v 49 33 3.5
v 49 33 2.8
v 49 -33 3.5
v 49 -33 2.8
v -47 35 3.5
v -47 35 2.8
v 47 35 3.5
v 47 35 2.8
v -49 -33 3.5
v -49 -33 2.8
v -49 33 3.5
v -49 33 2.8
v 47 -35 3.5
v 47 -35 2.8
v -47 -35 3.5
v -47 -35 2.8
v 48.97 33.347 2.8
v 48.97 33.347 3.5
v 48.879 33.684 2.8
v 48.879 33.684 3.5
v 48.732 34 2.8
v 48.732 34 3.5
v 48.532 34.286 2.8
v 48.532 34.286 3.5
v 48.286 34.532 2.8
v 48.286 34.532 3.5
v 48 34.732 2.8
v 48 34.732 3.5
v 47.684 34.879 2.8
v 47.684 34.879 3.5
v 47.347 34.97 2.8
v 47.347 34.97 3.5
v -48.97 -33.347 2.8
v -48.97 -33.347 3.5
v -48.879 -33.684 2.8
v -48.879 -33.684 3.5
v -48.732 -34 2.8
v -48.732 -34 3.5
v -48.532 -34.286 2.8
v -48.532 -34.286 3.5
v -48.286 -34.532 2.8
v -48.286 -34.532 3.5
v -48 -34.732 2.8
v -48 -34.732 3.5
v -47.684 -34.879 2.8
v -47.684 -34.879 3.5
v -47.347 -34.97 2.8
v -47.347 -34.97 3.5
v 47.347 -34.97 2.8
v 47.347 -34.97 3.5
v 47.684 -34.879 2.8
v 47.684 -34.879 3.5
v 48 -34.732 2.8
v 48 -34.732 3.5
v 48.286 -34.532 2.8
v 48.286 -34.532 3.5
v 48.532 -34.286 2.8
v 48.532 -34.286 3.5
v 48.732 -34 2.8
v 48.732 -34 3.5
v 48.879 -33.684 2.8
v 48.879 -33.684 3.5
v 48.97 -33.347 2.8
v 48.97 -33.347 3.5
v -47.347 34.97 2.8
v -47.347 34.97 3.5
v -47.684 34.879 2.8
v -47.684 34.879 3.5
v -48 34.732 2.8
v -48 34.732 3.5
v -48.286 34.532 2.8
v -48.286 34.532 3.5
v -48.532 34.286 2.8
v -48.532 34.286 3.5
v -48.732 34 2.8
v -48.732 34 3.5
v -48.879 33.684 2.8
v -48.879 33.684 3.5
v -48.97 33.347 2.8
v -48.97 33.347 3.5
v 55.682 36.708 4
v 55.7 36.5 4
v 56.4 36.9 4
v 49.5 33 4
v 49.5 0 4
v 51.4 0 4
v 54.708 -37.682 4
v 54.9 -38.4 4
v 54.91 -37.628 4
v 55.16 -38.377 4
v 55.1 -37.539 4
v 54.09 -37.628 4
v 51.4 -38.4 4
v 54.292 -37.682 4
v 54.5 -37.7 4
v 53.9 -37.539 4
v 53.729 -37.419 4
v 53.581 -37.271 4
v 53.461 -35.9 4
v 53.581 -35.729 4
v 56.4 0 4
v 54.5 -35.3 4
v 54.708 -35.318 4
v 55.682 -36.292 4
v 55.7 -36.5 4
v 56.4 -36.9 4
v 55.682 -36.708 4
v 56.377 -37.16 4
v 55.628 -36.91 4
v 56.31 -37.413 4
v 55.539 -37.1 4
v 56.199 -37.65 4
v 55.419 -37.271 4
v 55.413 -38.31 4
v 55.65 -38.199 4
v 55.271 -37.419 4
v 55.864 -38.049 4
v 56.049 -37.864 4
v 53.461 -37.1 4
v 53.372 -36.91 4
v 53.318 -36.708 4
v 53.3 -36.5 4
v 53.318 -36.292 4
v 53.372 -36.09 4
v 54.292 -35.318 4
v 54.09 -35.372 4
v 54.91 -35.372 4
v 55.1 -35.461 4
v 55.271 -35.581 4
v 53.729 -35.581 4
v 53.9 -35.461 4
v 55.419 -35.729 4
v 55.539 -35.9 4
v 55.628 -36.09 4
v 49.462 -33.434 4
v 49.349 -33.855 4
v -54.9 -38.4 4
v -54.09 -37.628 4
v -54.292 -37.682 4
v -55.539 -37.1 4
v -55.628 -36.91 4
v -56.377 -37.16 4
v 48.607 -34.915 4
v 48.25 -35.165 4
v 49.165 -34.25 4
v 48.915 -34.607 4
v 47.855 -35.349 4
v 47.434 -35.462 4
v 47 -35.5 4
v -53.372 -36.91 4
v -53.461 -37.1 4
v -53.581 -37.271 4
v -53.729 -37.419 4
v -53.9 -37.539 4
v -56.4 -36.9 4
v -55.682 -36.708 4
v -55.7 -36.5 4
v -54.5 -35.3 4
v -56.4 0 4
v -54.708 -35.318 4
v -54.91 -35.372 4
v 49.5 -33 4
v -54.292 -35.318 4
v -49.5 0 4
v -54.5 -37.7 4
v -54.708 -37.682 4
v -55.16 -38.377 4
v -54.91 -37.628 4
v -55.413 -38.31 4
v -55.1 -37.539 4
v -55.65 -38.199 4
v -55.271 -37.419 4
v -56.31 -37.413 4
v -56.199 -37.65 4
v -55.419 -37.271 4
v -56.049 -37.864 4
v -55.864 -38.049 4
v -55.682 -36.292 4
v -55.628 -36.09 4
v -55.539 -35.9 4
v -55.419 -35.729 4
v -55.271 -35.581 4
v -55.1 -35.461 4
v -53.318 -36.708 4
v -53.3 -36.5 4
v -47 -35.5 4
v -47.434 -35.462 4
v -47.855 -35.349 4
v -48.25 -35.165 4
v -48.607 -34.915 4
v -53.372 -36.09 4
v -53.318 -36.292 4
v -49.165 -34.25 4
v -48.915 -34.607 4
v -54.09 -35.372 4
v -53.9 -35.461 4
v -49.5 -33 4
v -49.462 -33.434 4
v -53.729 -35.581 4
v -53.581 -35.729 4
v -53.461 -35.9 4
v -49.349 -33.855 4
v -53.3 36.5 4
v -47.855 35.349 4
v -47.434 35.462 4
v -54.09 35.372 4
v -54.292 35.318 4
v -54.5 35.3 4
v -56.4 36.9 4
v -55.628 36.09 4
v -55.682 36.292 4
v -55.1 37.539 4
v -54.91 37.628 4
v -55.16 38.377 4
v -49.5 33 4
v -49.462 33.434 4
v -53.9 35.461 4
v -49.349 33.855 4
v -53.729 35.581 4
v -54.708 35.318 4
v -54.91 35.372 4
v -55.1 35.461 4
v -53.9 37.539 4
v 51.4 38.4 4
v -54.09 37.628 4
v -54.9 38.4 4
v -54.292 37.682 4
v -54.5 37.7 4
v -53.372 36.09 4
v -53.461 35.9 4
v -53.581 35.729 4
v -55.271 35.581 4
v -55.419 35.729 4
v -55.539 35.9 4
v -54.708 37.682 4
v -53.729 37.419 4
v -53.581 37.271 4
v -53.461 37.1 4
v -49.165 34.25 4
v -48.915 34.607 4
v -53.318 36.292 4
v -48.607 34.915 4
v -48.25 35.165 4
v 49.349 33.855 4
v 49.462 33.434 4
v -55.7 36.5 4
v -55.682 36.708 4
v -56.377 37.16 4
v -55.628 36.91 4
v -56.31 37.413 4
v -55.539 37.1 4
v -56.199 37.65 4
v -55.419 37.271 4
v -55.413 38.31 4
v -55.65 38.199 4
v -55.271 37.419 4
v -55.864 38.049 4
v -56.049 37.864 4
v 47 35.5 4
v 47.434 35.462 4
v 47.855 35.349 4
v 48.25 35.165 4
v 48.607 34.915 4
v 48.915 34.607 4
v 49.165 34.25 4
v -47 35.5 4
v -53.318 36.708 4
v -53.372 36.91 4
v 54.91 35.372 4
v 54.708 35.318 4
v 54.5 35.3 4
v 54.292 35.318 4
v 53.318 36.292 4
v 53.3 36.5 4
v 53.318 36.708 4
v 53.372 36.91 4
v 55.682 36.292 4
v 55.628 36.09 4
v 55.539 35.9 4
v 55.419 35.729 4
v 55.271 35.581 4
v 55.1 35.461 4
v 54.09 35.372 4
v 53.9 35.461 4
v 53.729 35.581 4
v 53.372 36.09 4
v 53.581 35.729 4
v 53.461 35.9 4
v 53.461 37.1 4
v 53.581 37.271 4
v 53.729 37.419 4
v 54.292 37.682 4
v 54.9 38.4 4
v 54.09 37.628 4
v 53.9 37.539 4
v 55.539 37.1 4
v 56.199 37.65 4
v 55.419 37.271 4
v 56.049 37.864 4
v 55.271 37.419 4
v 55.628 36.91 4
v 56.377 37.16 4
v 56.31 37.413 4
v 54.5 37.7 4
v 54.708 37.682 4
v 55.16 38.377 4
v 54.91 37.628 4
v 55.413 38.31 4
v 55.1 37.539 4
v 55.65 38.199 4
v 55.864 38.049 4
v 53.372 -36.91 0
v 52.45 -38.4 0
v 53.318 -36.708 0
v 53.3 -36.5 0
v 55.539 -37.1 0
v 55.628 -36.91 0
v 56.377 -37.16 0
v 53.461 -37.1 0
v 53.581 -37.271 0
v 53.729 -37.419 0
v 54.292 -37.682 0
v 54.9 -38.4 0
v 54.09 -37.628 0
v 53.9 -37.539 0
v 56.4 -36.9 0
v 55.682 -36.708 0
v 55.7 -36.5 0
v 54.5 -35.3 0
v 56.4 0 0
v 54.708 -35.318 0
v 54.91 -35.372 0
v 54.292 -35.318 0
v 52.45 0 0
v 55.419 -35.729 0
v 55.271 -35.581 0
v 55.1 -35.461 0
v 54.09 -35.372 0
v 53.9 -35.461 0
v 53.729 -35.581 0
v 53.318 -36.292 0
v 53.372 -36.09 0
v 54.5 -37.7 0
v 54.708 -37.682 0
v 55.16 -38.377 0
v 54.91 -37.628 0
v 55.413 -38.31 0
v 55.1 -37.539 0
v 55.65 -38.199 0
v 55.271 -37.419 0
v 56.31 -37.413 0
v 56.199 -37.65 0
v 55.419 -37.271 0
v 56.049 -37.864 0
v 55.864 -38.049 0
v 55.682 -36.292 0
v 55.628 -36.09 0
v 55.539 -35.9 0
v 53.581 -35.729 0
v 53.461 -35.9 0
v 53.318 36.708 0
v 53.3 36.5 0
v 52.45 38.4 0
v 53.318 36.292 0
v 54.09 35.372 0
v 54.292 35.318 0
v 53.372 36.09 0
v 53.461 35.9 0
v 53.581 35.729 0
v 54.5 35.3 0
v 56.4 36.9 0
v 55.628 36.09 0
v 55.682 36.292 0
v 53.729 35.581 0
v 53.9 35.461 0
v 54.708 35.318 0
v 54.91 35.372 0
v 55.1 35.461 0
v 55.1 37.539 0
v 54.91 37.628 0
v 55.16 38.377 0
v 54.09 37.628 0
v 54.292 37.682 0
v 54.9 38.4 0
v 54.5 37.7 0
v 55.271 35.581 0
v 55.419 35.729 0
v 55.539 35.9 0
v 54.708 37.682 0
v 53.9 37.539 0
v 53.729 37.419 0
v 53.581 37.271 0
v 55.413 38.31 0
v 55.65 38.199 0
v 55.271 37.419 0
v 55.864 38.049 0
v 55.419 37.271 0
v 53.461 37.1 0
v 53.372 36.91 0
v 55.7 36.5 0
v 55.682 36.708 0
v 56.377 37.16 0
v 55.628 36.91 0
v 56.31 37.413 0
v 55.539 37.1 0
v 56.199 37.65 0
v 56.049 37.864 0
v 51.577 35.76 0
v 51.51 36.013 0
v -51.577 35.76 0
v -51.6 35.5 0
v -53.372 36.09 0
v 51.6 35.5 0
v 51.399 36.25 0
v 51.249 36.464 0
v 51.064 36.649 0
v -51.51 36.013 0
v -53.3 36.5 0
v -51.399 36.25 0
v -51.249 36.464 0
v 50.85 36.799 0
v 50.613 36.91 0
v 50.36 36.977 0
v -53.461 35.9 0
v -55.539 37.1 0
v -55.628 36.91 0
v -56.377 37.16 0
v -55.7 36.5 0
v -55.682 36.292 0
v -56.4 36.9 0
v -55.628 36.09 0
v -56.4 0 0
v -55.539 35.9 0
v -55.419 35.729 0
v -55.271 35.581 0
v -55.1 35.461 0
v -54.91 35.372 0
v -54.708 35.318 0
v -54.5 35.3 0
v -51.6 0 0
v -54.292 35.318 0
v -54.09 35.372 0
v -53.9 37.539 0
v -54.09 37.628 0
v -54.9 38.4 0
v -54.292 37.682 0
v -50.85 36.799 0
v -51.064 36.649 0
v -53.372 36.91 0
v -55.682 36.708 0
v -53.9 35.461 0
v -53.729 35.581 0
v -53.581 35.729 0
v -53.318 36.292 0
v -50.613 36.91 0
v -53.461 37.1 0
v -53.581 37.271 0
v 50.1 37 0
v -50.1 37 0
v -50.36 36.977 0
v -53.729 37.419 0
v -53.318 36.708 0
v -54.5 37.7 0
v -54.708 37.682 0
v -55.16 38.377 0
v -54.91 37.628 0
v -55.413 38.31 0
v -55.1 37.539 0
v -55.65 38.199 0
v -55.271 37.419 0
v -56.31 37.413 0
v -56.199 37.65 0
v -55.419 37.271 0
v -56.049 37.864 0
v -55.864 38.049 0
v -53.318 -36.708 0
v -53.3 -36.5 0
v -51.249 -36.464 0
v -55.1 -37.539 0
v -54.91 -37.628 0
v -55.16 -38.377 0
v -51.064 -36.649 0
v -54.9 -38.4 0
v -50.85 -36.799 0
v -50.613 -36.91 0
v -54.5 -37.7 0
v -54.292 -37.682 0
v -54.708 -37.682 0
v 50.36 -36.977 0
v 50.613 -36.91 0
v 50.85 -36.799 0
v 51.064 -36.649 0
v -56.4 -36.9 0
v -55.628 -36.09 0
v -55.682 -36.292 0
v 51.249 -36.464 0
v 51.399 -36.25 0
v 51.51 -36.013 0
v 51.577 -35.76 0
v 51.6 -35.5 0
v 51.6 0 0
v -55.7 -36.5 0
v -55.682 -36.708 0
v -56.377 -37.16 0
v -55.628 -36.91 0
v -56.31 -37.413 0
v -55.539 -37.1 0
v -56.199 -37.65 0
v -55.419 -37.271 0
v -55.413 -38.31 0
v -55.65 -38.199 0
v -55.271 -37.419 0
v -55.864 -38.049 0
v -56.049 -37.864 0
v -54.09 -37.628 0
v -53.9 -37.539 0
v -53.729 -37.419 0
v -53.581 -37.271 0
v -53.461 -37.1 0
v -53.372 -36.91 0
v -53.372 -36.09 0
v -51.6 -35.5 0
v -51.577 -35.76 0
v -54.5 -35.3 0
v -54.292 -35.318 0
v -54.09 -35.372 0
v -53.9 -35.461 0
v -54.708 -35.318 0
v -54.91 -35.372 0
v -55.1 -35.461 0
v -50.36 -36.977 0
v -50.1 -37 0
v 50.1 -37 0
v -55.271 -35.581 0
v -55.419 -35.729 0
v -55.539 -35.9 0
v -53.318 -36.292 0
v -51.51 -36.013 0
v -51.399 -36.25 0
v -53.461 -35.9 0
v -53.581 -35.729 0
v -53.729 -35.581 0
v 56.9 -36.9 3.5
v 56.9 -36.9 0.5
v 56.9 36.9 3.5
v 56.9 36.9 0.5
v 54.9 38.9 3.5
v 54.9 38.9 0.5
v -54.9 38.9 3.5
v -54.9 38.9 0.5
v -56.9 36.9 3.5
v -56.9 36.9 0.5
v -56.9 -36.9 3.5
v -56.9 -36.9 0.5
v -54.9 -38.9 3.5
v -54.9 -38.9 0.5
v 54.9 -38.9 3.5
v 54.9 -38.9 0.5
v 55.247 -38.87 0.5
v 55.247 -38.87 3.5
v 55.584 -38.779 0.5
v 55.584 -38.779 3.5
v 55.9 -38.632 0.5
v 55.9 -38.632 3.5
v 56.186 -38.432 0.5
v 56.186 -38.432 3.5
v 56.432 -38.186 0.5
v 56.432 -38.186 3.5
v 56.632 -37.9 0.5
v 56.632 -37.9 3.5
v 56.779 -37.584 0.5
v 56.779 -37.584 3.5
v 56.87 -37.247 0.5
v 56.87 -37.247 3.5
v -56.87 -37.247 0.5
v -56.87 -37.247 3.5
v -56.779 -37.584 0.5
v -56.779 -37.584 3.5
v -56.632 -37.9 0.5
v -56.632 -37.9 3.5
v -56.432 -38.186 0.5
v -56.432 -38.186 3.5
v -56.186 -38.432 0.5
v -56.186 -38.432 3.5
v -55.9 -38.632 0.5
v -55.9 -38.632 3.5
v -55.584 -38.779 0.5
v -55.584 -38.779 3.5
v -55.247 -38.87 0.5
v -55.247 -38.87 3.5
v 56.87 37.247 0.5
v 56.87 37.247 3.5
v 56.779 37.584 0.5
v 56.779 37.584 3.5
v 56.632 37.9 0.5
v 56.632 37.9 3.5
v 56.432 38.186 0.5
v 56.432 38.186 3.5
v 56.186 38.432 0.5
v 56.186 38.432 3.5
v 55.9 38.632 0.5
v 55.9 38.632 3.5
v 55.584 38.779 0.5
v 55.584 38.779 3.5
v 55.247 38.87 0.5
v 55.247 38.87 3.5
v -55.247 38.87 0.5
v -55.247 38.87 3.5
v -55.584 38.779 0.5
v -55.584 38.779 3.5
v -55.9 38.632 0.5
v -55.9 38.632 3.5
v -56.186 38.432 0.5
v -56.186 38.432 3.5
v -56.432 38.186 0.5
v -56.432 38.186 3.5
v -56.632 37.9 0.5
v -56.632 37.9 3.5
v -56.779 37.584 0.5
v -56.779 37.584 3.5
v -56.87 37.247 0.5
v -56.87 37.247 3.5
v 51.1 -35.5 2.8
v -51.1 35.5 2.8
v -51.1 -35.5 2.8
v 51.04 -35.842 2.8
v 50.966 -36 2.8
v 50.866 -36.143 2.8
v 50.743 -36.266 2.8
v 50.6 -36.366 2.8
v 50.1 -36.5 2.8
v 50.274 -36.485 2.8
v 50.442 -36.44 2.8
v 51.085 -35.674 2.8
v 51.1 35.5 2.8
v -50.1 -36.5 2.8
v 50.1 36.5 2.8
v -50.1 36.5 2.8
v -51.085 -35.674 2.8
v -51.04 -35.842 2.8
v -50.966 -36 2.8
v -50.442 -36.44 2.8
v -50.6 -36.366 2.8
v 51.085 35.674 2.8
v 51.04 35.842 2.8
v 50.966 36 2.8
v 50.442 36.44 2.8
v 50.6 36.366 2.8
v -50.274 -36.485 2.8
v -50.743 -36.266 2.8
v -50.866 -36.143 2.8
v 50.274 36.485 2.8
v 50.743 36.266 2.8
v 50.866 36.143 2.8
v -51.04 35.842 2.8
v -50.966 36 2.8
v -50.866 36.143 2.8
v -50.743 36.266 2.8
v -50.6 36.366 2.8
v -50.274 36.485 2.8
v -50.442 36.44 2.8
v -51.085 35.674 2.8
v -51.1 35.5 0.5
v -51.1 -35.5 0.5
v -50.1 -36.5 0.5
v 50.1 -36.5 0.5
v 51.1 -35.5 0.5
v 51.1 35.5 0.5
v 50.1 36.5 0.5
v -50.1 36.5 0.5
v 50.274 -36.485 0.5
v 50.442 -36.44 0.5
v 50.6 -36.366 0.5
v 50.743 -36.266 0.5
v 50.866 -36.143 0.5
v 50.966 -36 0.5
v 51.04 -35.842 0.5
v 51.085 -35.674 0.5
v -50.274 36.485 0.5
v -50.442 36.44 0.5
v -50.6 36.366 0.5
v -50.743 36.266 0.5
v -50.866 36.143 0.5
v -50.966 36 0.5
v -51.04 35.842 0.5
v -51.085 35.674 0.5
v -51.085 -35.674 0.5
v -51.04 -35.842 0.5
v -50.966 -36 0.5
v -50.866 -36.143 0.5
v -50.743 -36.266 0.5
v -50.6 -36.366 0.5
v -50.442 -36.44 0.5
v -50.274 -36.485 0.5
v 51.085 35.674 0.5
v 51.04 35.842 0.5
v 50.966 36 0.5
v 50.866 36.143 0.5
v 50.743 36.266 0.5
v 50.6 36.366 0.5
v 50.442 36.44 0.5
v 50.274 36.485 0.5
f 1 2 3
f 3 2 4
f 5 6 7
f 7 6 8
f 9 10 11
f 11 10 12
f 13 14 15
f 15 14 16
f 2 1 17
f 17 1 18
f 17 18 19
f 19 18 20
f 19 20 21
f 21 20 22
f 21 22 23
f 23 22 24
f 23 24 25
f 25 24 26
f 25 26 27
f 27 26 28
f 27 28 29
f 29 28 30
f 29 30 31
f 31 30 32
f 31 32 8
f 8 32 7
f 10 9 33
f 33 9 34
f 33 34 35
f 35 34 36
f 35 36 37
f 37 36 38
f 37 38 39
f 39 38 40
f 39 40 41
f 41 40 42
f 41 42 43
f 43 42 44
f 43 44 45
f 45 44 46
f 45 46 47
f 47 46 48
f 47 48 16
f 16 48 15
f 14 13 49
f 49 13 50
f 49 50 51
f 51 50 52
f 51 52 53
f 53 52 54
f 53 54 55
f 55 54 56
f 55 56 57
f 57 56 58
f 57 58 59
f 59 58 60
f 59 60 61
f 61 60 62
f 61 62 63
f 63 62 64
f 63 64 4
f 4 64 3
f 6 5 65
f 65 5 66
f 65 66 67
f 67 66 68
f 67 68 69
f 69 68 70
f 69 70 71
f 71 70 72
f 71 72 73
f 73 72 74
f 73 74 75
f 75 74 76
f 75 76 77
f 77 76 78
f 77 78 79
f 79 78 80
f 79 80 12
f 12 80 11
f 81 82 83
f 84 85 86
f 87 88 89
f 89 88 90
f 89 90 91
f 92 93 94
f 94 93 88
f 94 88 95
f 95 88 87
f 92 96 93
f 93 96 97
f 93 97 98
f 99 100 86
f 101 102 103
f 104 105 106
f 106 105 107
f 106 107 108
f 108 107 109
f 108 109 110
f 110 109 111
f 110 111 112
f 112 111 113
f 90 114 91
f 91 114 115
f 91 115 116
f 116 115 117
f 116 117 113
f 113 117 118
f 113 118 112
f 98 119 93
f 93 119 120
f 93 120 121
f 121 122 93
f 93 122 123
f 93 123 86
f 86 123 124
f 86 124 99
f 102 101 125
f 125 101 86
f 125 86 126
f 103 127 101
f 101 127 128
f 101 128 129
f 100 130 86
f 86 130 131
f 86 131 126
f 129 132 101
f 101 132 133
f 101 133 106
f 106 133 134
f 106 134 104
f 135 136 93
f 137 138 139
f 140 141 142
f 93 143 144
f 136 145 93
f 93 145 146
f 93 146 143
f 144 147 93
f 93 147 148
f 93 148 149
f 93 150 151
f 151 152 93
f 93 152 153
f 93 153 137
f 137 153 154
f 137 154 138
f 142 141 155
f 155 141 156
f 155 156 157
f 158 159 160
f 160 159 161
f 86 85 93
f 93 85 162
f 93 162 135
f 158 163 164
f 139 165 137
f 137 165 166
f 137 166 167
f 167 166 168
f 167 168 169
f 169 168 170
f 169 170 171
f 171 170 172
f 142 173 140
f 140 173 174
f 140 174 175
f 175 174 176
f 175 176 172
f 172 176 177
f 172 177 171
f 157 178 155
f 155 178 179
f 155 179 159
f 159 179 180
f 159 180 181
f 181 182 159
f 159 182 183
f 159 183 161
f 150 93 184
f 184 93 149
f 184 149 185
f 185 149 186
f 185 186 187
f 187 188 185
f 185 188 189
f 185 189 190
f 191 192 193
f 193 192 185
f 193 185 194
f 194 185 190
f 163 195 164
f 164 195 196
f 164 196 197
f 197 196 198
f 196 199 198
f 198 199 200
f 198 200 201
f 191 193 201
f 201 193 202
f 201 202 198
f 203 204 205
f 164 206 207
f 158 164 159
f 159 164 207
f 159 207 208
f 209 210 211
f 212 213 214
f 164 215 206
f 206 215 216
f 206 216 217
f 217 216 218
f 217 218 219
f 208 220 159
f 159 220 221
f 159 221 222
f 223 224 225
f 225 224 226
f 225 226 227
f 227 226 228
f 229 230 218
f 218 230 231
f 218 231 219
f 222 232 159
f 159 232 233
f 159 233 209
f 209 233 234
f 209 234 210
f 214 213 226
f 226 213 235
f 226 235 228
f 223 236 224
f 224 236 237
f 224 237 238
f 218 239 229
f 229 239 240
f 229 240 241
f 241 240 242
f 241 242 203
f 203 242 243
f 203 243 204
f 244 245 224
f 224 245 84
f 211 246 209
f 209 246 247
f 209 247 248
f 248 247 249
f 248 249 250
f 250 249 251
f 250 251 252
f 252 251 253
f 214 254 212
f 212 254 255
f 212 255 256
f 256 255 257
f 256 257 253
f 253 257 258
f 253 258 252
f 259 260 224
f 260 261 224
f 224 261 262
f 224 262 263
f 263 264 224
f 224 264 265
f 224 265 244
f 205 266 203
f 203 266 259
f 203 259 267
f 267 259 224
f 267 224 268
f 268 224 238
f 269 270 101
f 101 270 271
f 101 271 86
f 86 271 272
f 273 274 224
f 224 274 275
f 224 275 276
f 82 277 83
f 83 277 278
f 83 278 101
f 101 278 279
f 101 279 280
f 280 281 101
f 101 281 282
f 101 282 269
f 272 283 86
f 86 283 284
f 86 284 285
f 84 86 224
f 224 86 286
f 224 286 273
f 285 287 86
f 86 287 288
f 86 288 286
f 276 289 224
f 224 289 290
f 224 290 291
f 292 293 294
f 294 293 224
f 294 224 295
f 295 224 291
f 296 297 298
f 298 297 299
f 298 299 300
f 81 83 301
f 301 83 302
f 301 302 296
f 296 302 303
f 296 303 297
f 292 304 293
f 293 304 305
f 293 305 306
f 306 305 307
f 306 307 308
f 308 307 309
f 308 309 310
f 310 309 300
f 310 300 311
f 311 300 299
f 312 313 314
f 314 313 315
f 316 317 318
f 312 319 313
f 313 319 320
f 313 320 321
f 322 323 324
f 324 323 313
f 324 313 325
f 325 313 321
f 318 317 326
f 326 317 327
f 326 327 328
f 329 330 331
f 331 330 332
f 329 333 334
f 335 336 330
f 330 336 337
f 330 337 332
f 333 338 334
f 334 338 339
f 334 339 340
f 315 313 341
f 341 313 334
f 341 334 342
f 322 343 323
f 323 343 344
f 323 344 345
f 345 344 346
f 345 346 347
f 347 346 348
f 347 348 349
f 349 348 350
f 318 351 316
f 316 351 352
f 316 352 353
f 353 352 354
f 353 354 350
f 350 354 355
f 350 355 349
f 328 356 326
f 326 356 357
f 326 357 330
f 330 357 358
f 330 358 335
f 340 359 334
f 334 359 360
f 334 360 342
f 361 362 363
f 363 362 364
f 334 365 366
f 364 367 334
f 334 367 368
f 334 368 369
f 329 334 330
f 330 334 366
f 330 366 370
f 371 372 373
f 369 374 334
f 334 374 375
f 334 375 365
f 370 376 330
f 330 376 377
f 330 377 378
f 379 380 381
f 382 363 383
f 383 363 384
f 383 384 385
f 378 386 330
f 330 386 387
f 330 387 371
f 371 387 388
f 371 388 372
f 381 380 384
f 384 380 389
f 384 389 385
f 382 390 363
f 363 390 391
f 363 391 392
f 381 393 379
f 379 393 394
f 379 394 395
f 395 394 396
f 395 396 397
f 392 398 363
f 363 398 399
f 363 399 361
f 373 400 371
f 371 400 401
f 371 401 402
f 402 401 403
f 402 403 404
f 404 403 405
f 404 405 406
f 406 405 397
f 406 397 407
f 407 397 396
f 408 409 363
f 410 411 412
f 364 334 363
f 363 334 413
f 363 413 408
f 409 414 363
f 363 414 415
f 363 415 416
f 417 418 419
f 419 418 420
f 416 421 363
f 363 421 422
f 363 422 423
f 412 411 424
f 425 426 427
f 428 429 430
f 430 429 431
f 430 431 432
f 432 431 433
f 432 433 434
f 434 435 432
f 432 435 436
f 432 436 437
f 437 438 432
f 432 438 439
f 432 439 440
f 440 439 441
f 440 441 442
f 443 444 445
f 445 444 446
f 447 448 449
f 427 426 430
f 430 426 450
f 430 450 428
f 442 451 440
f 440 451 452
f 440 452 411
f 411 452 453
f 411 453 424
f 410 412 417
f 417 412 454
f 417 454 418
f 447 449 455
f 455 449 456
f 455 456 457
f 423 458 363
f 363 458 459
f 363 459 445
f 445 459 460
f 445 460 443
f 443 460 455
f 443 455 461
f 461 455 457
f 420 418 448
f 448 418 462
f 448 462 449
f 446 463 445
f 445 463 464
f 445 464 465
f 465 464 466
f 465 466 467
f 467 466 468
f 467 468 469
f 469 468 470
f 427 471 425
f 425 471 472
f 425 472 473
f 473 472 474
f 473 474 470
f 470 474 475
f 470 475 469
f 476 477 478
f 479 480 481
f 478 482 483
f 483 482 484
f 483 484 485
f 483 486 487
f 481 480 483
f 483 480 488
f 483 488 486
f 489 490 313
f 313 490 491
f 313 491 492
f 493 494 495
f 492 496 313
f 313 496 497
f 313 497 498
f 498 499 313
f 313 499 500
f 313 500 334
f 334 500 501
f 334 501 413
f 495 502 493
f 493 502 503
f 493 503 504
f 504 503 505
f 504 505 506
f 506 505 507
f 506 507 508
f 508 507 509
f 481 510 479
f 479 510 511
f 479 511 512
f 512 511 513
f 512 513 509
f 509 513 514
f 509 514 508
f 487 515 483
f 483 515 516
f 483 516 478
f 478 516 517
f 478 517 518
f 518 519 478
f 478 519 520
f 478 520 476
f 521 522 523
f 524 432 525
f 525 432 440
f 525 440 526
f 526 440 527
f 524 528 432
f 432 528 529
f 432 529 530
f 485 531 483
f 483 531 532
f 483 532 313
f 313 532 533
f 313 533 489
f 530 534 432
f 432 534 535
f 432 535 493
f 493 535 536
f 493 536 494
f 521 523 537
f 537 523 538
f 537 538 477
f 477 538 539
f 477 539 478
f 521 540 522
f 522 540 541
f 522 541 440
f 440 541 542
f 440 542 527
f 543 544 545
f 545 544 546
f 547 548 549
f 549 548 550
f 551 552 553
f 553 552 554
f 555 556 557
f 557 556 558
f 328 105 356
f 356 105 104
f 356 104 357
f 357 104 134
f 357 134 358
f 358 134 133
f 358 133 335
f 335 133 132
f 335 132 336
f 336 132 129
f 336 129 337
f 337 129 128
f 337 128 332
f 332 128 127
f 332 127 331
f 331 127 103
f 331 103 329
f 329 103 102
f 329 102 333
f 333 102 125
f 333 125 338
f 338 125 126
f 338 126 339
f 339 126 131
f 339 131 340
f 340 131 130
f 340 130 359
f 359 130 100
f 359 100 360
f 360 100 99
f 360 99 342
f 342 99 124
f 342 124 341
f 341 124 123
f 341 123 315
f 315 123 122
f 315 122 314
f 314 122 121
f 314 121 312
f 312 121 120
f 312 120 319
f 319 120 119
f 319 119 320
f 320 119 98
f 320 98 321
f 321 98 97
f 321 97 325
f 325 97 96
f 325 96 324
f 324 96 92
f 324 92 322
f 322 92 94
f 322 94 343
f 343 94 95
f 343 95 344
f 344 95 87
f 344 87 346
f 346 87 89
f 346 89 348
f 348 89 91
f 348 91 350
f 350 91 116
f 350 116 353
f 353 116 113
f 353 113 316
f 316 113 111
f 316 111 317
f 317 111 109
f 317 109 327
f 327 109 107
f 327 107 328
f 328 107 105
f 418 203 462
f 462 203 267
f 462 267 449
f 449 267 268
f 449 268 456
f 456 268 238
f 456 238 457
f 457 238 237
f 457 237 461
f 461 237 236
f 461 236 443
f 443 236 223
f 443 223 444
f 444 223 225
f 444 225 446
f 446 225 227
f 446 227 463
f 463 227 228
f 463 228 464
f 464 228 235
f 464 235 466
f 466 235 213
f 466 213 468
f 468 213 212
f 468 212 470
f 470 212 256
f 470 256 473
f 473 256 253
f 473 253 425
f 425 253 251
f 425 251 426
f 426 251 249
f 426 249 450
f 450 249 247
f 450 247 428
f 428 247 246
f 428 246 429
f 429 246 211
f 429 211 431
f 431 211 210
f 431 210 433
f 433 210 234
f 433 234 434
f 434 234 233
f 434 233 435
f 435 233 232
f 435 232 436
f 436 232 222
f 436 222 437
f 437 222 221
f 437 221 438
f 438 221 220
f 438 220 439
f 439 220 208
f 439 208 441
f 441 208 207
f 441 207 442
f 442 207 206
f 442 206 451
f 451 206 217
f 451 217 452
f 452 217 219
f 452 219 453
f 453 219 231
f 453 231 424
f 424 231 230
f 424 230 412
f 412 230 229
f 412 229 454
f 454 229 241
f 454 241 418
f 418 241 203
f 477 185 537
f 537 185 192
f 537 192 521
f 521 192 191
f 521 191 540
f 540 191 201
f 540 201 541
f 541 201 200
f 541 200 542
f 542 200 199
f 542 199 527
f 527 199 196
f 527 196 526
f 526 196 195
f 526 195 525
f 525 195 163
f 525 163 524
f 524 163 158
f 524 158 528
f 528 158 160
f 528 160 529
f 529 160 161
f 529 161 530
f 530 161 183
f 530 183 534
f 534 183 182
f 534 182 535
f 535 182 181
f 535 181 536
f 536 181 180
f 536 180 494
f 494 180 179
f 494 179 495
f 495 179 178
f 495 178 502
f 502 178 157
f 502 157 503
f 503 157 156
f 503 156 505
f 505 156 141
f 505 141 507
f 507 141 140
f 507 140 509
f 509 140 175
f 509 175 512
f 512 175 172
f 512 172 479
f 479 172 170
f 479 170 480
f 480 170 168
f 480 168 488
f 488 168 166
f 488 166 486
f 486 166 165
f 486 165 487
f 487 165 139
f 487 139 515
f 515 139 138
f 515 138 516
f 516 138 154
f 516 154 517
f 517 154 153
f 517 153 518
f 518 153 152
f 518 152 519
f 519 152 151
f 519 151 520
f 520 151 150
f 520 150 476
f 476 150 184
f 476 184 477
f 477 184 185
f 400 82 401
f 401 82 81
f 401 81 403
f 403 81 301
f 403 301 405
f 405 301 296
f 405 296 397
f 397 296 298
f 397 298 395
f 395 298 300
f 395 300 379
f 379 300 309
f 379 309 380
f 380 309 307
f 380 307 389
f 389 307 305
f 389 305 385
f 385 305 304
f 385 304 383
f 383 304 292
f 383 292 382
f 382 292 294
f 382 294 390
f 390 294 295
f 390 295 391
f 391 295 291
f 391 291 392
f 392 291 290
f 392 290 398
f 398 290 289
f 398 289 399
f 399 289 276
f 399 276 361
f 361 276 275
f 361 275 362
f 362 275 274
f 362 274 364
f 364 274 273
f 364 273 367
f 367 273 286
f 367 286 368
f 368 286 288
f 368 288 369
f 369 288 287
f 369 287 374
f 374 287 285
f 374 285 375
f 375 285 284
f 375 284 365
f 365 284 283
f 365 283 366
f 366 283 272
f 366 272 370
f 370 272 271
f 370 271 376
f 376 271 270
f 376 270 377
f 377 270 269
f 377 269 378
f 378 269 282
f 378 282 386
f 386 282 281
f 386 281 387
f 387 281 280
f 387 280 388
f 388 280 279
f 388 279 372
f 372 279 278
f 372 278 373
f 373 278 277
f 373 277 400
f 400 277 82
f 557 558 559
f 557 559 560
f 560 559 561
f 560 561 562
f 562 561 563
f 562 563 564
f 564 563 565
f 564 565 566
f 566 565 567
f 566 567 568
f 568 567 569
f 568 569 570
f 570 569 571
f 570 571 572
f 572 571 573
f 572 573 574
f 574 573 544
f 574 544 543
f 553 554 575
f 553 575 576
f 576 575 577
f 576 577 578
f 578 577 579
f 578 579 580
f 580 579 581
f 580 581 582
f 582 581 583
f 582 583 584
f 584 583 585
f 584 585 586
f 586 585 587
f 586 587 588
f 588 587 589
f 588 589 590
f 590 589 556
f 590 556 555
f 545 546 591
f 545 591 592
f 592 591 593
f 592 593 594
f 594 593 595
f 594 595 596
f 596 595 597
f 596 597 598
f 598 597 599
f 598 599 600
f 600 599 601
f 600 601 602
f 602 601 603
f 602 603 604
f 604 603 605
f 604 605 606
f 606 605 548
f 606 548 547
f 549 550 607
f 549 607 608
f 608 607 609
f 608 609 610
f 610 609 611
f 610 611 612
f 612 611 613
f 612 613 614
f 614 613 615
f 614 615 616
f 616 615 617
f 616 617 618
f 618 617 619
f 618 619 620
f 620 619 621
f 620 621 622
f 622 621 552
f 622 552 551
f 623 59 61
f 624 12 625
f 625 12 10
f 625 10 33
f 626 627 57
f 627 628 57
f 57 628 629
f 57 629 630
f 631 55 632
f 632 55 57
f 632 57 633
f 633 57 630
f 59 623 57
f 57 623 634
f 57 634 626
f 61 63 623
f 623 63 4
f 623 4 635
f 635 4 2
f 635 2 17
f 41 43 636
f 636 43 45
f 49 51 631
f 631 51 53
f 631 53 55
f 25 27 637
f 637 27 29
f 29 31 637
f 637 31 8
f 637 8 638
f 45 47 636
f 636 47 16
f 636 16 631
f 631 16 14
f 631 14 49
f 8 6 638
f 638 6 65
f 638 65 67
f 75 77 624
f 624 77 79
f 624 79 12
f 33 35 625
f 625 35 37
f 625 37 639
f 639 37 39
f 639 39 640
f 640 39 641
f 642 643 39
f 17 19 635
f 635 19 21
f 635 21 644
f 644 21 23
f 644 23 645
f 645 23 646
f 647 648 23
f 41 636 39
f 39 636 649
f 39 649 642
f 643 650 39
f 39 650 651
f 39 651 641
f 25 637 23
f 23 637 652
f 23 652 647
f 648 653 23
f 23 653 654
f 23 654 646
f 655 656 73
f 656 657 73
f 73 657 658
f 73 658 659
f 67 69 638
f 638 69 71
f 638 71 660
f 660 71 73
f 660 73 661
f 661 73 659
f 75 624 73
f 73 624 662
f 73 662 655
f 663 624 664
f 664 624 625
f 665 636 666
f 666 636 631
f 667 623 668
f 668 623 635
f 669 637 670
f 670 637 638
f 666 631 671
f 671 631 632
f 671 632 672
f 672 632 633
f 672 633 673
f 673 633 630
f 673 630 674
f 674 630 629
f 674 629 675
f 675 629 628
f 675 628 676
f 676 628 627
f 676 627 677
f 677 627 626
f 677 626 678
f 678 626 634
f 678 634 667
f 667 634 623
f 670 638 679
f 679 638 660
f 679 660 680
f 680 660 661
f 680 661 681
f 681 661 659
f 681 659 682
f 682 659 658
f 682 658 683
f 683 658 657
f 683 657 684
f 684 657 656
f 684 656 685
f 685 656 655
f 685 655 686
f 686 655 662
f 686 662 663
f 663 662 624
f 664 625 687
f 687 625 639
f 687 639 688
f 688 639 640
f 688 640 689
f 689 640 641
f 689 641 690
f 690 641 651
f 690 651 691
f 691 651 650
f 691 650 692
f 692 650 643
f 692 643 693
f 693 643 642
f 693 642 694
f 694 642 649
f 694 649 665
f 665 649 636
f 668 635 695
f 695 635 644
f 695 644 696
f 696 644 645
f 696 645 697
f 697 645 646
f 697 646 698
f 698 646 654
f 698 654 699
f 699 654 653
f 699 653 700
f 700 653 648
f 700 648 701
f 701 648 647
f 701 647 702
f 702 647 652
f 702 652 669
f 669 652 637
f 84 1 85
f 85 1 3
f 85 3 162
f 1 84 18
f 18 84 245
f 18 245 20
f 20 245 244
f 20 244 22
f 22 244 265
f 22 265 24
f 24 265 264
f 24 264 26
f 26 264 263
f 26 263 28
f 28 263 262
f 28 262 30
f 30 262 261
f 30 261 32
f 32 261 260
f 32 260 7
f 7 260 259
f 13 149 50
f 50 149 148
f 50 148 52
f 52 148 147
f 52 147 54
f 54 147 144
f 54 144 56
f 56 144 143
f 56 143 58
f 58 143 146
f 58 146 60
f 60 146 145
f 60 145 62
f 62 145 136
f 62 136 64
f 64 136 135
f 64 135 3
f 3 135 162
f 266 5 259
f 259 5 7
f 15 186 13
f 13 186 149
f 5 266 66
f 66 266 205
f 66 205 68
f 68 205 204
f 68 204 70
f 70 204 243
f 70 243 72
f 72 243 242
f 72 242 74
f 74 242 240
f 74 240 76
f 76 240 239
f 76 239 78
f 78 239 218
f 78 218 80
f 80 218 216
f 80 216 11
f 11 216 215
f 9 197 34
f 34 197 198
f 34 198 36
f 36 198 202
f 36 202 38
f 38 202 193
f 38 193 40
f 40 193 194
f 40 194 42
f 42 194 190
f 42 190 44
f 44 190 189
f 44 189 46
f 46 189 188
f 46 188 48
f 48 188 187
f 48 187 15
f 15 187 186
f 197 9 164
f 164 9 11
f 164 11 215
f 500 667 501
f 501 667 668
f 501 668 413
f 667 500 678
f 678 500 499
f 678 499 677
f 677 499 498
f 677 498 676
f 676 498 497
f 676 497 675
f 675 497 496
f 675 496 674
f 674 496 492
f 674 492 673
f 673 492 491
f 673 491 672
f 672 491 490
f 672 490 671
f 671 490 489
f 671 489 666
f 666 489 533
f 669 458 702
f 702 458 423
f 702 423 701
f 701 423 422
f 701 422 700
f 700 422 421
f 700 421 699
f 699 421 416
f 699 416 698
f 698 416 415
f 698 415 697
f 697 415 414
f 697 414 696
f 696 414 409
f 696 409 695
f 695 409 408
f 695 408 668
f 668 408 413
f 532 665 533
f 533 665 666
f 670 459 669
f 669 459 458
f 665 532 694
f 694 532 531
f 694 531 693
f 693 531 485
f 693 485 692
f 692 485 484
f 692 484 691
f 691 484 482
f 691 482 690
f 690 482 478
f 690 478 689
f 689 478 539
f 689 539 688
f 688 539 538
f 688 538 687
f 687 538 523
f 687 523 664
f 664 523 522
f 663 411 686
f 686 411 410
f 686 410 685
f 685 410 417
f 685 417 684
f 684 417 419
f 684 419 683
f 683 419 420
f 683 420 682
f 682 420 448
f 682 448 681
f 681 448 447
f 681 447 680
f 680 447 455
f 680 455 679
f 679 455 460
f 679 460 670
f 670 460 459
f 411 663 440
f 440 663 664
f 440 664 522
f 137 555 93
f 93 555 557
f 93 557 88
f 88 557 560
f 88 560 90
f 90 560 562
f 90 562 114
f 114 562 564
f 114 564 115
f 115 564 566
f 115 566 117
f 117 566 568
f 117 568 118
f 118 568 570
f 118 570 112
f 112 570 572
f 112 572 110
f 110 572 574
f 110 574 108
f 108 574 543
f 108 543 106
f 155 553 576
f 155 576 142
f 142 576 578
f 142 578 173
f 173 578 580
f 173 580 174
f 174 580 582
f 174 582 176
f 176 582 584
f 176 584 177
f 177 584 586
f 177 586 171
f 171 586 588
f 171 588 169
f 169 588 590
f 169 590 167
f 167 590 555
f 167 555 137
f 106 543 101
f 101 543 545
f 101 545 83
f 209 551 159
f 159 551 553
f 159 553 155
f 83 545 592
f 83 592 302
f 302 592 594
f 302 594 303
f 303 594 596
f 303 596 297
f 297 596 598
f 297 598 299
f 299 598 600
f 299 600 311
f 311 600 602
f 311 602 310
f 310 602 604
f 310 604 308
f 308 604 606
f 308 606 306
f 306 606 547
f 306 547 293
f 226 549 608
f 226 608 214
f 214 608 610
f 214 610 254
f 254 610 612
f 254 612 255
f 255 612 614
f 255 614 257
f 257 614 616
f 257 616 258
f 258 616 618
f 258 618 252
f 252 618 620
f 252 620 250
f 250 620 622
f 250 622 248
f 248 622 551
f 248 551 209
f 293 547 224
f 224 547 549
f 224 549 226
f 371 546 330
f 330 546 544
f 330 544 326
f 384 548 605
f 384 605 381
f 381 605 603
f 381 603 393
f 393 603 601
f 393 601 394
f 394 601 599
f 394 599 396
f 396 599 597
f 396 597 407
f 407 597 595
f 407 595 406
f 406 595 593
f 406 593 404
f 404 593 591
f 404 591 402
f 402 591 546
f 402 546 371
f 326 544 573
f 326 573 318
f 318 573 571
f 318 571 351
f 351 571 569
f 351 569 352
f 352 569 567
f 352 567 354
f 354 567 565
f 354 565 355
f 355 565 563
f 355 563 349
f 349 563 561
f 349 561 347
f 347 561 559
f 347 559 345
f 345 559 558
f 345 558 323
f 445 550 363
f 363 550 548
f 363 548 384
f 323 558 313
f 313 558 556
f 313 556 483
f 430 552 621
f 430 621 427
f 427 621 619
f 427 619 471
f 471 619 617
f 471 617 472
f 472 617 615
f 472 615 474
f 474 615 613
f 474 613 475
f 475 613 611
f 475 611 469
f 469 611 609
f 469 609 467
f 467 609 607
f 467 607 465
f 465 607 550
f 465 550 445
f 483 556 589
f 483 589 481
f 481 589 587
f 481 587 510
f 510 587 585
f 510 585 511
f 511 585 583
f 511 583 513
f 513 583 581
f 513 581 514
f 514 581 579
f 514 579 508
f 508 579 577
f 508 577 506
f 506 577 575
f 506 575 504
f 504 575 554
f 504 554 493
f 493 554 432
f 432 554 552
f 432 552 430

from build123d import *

# Parameters (mm, degrees)
SKETCH1_W                = 113.8
SKETCH1_H                = 77.8
SKETCH1_W_2              = 98
SKETCH1_H_2              = 70
BOSS_EXTRUDE1_DEPTH      = 4
M2_CLEARANCE_HOLE1_D     = 2.4
M2_CLEARANCE_HOLE1_DEPTH = 4
FILLET1_R                = 2
FILLET2_R                = 2
SKETCH5_W                = 102.2
SKETCH5_H                = 73
CUT_EXTRUDE2_DEPTH       = 2.8
FILLET5_R                = 1
CHAMFER1_SIZE            = 0.5


with BuildPart() as part:
    # Sketch1 → Boss-Extrude1 (new body)
    with BuildSketch(Plane.XY):
        Rectangle(SKETCH1_W, SKETCH1_H)
        Rectangle(SKETCH1_W_2, SKETCH1_H_2, mode=Mode.SUBTRACT)
    extrude(amount=BOSS_EXTRUDE1_DEPTH)

    # M2 Clearance Hole1
    with Locations(Plane.XY.offset(4)):
        with Locations((0, 0), (54.5, 36.5), (-54.5, -36.5), (-54.5, 36.5), (54.5, -36.5)):
            Hole(M2_CLEARANCE_HOLE1_D / 2, depth=M2_CLEARANCE_HOLE1_DEPTH)

    # Fillet1
    fillet1_edges = [part.edges().sort_by_distance(p)[0] for p in [
        (56.9, -38.9, 2),
        (-56.9, -38.9, 2),
        (-56.9, 38.9, 2),
        (56.9, 38.9, 2),
    ]]
    fillet(fillet1_edges, radius=FILLET1_R)

    # Fillet2
    fillet2_edges = [part.edges().sort_by_distance(p)[0] for p in [
        (49, -35, 2),
        (49, 35, 2),
        (-49, 35, 2),
        (-49, -35, 2),
    ]]
    fillet(fillet2_edges, radius=FILLET2_R)

    # Sketch5 → Cut-Extrude2 (cut)
    with BuildSketch(Plane(origin=(0, 0, 0), x_dir=(-1, 0, 0), z_dir=(0, 0, -1))):
        Rectangle(SKETCH5_W, SKETCH5_H)
    extrude(amount=-CUT_EXTRUDE2_DEPTH, mode=Mode.SUBTRACT)

    # Fillet5
    fillet5_edges = [part.edges().sort_by_distance(p)[0] for p in [
        (-51.1, 36.5, 1.4),
        (-51.1, -36.5, 1.4),
        (51.1, -36.5, 1.4),
        (51.1, 36.5, 1.4),
    ]]
    fillet(fillet5_edges, radius=FILLET5_R)

    # Chamfer1
    chamfer1_edges = [part.edges().sort_by_distance(p)[0] for p in [
        (0, -36.5, 0),
        (51.1, 0, 0),
        (0, 36.5, 0),
        (-51.1, 0, 0),
        (50.807106781, -36.207106781, 0),
        (-50.807106781, 36.207106781, 0),
        (-50.807106781, -36.207106781, 0),
        (50.807106781, 36.207106781, 0),
        (56.9, 0, 0),
        (56.9, 0, 4),
        (0, -38.9, 0),
        (-56.9, 0, 0),
        (0, 38.9, 0),
        (-56.314213562, 38.314213562, 0),
        (56.314213562, 38.314213562, 0),
        (-56.314213562, -38.314213562, 0),
        (56.314213562, -38.314213562, 0),
        (0, -38.9, 4),
        (0, 38.9, 4),
        (-56.9, 0, 4),
        (-56.314213562, 38.314213562, 4),
        (56.314213562, 38.314213562, 4),
        (-56.314213562, -38.314213562, 4),
        (56.314213562, -38.314213562, 4),
        (49, 0, 4),
        (0, 35, 4),
        (-49, 0, 4),
        (0, -35, 4),
        (48.414213562, 34.414213562, 4),
        (-48.414213562, -34.414213562, 4),
        (48.414213562, -34.414213562, 4),
        (-48.414213562, 34.414213562, 4),
    ]]
    chamfer(chamfer1_edges, length=CHAMFER1_SIZE)


solid = part.part
